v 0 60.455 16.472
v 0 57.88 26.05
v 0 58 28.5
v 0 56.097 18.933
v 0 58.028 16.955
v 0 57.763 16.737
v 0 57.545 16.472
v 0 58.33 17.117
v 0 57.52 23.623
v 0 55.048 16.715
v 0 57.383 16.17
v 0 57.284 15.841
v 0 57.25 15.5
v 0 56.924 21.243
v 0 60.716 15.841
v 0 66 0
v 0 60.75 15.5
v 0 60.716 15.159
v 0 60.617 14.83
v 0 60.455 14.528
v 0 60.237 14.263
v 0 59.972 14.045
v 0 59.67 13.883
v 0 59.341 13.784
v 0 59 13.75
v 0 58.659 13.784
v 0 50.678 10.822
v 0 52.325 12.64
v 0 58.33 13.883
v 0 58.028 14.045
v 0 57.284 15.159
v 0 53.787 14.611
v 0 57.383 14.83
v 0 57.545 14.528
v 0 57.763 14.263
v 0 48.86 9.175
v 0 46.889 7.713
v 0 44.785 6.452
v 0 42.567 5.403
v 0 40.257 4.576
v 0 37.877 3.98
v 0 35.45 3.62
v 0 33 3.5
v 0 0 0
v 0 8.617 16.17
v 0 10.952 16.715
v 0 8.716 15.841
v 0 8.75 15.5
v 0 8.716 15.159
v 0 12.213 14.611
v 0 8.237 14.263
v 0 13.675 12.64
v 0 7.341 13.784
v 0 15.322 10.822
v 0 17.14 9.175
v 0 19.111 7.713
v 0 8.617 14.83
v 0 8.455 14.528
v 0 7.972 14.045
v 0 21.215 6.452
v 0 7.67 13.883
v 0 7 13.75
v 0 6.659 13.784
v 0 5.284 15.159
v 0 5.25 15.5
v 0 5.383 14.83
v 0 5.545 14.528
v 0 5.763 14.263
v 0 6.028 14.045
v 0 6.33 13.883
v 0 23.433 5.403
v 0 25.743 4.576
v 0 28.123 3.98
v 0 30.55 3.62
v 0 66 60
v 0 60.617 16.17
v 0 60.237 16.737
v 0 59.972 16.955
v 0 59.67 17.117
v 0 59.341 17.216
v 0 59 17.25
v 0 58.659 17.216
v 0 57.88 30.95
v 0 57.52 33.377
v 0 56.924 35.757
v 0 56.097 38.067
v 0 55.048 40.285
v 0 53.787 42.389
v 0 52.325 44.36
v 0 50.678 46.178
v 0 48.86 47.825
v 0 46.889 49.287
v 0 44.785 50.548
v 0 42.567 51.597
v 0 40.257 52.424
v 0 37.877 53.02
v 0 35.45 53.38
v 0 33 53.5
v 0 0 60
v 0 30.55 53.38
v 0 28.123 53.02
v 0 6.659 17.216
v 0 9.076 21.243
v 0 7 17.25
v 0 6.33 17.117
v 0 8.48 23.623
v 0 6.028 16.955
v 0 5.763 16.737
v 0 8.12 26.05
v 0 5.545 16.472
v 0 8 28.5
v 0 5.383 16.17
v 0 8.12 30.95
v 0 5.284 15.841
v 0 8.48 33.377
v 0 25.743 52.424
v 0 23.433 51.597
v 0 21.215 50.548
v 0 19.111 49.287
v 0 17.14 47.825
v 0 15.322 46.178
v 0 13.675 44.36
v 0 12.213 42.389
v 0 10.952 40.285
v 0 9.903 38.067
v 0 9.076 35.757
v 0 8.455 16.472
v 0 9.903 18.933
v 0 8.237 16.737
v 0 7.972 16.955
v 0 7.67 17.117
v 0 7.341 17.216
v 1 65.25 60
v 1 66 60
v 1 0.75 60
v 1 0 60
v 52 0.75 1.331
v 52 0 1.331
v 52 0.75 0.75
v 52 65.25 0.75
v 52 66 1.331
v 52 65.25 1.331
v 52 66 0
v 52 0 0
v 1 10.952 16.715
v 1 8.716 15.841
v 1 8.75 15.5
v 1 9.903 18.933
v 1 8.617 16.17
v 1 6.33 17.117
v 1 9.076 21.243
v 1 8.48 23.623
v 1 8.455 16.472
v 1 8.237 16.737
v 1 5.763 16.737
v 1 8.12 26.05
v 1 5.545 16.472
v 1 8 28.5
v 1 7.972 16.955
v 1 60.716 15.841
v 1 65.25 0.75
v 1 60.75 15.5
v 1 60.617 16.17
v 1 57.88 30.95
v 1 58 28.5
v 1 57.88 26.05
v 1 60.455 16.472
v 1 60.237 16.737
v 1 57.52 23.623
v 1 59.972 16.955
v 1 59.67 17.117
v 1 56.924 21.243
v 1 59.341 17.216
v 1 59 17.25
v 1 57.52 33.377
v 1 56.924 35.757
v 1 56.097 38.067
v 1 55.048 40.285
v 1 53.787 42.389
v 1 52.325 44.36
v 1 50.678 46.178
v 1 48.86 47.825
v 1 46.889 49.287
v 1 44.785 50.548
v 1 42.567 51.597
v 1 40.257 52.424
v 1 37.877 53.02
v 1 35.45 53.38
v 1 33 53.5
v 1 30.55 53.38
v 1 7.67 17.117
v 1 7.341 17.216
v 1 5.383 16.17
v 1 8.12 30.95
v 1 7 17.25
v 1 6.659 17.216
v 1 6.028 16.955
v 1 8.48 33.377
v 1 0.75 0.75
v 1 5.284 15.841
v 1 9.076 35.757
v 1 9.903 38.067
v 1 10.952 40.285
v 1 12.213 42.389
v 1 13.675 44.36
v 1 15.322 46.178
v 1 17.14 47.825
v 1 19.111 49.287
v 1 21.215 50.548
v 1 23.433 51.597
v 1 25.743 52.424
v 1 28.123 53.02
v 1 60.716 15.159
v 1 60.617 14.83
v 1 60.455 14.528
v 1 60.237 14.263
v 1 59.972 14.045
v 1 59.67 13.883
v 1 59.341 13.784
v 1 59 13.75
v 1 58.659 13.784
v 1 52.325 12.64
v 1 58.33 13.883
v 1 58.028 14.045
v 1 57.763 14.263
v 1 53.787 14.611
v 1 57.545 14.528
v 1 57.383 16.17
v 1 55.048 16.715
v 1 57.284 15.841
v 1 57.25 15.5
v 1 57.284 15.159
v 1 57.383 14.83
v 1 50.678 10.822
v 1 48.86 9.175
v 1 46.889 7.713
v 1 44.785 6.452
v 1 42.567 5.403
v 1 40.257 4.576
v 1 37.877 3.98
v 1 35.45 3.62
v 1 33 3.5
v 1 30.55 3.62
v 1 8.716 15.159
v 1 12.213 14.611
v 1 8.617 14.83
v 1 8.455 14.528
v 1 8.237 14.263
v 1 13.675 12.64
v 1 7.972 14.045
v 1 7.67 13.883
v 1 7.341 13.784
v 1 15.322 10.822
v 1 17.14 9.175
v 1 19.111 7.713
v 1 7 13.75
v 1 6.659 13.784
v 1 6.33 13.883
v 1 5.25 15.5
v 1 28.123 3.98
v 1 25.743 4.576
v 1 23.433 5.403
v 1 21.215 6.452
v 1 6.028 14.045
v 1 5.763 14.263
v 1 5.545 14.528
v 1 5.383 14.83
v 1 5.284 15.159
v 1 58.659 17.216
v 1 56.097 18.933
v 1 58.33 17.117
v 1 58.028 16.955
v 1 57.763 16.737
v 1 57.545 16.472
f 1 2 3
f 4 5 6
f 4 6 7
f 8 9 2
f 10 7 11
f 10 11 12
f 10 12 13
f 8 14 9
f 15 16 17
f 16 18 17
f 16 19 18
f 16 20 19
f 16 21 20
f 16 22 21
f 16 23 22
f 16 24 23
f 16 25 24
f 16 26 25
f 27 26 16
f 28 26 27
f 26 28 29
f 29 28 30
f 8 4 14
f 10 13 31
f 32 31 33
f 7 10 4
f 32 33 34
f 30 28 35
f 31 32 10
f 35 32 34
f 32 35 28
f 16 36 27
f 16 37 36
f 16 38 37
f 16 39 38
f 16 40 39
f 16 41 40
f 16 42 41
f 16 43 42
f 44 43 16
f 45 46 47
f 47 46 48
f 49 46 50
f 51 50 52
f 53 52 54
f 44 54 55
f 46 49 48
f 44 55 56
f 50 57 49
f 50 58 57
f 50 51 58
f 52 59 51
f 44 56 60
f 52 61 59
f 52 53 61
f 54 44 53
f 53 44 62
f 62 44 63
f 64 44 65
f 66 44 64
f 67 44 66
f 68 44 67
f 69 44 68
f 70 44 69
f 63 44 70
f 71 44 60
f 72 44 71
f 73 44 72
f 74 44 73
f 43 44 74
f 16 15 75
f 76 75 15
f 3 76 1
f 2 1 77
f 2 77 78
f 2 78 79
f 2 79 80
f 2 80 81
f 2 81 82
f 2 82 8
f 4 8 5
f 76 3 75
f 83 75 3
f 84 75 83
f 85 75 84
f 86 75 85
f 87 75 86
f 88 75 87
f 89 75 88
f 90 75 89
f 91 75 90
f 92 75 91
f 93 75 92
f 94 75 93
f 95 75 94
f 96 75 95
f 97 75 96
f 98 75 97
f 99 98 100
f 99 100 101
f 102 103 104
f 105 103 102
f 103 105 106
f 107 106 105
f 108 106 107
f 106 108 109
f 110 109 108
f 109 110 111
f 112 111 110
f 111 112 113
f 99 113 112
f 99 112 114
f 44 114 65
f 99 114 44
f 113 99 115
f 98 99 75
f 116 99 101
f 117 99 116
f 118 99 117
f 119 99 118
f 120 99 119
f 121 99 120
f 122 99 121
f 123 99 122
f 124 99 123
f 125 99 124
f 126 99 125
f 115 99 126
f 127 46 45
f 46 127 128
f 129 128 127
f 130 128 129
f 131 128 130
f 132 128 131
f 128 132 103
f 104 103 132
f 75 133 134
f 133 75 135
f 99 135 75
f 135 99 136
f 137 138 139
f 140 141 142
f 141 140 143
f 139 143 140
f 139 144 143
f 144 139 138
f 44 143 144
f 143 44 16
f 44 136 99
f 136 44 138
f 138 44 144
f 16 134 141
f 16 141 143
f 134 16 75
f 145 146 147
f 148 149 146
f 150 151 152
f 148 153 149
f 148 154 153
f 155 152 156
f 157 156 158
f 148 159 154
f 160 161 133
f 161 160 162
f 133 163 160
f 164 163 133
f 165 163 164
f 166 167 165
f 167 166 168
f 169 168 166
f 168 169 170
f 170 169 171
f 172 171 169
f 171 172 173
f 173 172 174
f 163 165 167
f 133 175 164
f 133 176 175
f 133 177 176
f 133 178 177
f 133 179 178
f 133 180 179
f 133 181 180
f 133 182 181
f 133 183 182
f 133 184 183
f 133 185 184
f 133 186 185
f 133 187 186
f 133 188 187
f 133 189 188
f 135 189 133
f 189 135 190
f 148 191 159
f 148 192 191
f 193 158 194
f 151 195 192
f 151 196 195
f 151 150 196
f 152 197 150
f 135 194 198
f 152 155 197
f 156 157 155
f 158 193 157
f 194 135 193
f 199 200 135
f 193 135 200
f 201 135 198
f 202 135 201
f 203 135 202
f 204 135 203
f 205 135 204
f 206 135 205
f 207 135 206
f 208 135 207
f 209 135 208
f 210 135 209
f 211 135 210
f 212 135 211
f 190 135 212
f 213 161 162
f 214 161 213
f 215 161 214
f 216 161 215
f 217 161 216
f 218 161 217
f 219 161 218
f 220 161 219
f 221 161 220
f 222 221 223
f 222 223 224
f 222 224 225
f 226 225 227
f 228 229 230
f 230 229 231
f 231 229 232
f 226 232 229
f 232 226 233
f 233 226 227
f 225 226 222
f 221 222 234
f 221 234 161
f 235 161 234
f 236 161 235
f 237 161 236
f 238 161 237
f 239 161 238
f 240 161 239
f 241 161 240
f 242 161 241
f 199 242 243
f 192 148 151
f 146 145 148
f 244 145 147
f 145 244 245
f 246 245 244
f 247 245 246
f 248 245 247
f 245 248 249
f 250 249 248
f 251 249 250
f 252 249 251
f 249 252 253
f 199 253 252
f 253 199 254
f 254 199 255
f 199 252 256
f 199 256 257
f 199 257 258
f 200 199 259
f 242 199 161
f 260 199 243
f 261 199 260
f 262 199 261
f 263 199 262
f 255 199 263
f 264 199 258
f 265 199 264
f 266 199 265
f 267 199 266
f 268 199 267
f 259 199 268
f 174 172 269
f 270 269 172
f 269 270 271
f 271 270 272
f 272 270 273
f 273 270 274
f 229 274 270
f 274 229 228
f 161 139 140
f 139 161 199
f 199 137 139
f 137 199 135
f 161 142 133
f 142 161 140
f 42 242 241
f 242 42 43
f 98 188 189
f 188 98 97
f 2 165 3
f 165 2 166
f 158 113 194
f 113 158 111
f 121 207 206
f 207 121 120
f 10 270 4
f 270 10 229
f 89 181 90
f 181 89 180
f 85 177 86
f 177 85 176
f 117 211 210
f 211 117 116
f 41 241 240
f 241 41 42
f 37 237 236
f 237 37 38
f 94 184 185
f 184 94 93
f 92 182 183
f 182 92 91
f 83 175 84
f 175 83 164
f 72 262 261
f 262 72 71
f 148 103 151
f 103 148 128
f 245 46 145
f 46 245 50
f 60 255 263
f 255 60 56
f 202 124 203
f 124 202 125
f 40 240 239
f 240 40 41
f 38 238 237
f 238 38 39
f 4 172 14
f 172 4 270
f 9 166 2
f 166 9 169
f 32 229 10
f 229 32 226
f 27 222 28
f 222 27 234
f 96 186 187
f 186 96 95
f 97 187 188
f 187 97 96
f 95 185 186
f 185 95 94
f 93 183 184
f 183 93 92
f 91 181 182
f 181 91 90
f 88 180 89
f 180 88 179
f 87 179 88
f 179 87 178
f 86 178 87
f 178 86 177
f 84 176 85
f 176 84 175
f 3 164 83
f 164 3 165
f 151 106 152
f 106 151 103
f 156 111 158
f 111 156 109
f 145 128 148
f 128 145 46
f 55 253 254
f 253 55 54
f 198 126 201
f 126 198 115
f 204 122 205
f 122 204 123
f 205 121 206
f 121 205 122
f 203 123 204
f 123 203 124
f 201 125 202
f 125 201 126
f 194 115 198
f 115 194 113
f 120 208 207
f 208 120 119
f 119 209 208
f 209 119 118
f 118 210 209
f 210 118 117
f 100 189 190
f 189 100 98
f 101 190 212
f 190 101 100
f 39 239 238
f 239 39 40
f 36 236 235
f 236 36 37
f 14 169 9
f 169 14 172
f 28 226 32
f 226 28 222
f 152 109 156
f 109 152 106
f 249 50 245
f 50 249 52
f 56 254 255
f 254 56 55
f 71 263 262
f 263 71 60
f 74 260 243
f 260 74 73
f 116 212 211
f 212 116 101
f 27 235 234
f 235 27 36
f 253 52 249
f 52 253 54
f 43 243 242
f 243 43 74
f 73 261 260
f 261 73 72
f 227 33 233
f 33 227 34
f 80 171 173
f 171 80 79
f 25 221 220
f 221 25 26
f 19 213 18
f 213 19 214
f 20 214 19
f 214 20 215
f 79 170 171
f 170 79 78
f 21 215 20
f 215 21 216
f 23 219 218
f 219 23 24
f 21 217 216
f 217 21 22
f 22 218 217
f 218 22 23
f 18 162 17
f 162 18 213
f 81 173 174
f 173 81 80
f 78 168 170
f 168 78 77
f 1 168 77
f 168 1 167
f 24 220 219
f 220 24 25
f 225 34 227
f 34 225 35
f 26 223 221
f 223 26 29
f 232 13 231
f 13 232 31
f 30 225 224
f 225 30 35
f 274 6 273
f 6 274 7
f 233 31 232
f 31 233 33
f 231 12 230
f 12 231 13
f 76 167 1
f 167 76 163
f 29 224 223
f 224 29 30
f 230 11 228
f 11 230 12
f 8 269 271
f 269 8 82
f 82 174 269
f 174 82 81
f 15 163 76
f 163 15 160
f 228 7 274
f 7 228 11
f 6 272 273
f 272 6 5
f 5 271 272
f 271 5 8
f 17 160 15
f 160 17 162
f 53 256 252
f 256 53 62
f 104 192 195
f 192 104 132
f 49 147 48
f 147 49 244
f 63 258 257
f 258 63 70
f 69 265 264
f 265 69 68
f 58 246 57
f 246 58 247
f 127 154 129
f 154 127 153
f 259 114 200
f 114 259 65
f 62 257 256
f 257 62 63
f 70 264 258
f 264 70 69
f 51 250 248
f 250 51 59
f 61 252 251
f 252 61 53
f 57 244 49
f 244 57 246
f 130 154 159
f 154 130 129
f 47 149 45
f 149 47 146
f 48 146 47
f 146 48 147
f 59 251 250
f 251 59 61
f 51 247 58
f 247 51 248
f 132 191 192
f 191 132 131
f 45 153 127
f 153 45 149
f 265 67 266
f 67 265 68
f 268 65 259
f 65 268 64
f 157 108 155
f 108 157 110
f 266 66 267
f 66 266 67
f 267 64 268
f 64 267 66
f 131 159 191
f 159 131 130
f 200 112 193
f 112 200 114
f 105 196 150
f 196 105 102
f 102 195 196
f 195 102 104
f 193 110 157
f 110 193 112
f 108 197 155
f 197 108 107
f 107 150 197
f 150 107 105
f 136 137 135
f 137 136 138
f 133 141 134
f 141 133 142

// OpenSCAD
meter_cutout_diameter = 50;
meter_facia_width = 66;
meter_facia_length = 52;
meter_facia_height = 60;
facia_screw_offset = 7;

module bare_housing() {
  difference() {
    cube([meter_facia_length, meter_facia_width, meter_facia_height]);
    translate([1,0.75,0.75])
      cube([meter_facia_length, meter_facia_width-1.5, meter_facia_height-0]);
    // translate([1,0,0])
    //   cube([meter_facia_length, meter_facia_width-0, meter_facia_height-0]);
  }
}

module full_housing() {
  difference() {
    bare_housing();
    meter_cutout_compensate_z = -1.5;
    meter_cutout_offset_x = (meter_cutout_diameter/2) + ((meter_facia_width - meter_cutout_diameter)/2);
    meter_cutout_offset_z = (meter_cutout_diameter/2) + ((meter_facia_height - meter_cutout_diameter)/2);
    translate([-1,meter_cutout_offset_x,meter_cutout_offset_z+meter_cutout_compensate_z]) rotate([0,90,0]) cylinder(d=meter_cutout_diameter, h=3, $fn=64);
    translate([-1,meter_facia_width-facia_screw_offset,17+meter_cutout_compensate_z]) rotate([0,90,0]) cylinder(d=3.5, h=3, $fn=32);
    translate([-1,facia_screw_offset,17+meter_cutout_compensate_z]) rotate([0,90,0]) cylinder(d=3.5, h=3, $fn=32);
  }
}

difference() {
  full_housing();
  translate([1,0,meter_facia_height]) rotate([0,49,0]) cube([meter_facia_length*2, meter_facia_width, meter_facia_height]);
}
